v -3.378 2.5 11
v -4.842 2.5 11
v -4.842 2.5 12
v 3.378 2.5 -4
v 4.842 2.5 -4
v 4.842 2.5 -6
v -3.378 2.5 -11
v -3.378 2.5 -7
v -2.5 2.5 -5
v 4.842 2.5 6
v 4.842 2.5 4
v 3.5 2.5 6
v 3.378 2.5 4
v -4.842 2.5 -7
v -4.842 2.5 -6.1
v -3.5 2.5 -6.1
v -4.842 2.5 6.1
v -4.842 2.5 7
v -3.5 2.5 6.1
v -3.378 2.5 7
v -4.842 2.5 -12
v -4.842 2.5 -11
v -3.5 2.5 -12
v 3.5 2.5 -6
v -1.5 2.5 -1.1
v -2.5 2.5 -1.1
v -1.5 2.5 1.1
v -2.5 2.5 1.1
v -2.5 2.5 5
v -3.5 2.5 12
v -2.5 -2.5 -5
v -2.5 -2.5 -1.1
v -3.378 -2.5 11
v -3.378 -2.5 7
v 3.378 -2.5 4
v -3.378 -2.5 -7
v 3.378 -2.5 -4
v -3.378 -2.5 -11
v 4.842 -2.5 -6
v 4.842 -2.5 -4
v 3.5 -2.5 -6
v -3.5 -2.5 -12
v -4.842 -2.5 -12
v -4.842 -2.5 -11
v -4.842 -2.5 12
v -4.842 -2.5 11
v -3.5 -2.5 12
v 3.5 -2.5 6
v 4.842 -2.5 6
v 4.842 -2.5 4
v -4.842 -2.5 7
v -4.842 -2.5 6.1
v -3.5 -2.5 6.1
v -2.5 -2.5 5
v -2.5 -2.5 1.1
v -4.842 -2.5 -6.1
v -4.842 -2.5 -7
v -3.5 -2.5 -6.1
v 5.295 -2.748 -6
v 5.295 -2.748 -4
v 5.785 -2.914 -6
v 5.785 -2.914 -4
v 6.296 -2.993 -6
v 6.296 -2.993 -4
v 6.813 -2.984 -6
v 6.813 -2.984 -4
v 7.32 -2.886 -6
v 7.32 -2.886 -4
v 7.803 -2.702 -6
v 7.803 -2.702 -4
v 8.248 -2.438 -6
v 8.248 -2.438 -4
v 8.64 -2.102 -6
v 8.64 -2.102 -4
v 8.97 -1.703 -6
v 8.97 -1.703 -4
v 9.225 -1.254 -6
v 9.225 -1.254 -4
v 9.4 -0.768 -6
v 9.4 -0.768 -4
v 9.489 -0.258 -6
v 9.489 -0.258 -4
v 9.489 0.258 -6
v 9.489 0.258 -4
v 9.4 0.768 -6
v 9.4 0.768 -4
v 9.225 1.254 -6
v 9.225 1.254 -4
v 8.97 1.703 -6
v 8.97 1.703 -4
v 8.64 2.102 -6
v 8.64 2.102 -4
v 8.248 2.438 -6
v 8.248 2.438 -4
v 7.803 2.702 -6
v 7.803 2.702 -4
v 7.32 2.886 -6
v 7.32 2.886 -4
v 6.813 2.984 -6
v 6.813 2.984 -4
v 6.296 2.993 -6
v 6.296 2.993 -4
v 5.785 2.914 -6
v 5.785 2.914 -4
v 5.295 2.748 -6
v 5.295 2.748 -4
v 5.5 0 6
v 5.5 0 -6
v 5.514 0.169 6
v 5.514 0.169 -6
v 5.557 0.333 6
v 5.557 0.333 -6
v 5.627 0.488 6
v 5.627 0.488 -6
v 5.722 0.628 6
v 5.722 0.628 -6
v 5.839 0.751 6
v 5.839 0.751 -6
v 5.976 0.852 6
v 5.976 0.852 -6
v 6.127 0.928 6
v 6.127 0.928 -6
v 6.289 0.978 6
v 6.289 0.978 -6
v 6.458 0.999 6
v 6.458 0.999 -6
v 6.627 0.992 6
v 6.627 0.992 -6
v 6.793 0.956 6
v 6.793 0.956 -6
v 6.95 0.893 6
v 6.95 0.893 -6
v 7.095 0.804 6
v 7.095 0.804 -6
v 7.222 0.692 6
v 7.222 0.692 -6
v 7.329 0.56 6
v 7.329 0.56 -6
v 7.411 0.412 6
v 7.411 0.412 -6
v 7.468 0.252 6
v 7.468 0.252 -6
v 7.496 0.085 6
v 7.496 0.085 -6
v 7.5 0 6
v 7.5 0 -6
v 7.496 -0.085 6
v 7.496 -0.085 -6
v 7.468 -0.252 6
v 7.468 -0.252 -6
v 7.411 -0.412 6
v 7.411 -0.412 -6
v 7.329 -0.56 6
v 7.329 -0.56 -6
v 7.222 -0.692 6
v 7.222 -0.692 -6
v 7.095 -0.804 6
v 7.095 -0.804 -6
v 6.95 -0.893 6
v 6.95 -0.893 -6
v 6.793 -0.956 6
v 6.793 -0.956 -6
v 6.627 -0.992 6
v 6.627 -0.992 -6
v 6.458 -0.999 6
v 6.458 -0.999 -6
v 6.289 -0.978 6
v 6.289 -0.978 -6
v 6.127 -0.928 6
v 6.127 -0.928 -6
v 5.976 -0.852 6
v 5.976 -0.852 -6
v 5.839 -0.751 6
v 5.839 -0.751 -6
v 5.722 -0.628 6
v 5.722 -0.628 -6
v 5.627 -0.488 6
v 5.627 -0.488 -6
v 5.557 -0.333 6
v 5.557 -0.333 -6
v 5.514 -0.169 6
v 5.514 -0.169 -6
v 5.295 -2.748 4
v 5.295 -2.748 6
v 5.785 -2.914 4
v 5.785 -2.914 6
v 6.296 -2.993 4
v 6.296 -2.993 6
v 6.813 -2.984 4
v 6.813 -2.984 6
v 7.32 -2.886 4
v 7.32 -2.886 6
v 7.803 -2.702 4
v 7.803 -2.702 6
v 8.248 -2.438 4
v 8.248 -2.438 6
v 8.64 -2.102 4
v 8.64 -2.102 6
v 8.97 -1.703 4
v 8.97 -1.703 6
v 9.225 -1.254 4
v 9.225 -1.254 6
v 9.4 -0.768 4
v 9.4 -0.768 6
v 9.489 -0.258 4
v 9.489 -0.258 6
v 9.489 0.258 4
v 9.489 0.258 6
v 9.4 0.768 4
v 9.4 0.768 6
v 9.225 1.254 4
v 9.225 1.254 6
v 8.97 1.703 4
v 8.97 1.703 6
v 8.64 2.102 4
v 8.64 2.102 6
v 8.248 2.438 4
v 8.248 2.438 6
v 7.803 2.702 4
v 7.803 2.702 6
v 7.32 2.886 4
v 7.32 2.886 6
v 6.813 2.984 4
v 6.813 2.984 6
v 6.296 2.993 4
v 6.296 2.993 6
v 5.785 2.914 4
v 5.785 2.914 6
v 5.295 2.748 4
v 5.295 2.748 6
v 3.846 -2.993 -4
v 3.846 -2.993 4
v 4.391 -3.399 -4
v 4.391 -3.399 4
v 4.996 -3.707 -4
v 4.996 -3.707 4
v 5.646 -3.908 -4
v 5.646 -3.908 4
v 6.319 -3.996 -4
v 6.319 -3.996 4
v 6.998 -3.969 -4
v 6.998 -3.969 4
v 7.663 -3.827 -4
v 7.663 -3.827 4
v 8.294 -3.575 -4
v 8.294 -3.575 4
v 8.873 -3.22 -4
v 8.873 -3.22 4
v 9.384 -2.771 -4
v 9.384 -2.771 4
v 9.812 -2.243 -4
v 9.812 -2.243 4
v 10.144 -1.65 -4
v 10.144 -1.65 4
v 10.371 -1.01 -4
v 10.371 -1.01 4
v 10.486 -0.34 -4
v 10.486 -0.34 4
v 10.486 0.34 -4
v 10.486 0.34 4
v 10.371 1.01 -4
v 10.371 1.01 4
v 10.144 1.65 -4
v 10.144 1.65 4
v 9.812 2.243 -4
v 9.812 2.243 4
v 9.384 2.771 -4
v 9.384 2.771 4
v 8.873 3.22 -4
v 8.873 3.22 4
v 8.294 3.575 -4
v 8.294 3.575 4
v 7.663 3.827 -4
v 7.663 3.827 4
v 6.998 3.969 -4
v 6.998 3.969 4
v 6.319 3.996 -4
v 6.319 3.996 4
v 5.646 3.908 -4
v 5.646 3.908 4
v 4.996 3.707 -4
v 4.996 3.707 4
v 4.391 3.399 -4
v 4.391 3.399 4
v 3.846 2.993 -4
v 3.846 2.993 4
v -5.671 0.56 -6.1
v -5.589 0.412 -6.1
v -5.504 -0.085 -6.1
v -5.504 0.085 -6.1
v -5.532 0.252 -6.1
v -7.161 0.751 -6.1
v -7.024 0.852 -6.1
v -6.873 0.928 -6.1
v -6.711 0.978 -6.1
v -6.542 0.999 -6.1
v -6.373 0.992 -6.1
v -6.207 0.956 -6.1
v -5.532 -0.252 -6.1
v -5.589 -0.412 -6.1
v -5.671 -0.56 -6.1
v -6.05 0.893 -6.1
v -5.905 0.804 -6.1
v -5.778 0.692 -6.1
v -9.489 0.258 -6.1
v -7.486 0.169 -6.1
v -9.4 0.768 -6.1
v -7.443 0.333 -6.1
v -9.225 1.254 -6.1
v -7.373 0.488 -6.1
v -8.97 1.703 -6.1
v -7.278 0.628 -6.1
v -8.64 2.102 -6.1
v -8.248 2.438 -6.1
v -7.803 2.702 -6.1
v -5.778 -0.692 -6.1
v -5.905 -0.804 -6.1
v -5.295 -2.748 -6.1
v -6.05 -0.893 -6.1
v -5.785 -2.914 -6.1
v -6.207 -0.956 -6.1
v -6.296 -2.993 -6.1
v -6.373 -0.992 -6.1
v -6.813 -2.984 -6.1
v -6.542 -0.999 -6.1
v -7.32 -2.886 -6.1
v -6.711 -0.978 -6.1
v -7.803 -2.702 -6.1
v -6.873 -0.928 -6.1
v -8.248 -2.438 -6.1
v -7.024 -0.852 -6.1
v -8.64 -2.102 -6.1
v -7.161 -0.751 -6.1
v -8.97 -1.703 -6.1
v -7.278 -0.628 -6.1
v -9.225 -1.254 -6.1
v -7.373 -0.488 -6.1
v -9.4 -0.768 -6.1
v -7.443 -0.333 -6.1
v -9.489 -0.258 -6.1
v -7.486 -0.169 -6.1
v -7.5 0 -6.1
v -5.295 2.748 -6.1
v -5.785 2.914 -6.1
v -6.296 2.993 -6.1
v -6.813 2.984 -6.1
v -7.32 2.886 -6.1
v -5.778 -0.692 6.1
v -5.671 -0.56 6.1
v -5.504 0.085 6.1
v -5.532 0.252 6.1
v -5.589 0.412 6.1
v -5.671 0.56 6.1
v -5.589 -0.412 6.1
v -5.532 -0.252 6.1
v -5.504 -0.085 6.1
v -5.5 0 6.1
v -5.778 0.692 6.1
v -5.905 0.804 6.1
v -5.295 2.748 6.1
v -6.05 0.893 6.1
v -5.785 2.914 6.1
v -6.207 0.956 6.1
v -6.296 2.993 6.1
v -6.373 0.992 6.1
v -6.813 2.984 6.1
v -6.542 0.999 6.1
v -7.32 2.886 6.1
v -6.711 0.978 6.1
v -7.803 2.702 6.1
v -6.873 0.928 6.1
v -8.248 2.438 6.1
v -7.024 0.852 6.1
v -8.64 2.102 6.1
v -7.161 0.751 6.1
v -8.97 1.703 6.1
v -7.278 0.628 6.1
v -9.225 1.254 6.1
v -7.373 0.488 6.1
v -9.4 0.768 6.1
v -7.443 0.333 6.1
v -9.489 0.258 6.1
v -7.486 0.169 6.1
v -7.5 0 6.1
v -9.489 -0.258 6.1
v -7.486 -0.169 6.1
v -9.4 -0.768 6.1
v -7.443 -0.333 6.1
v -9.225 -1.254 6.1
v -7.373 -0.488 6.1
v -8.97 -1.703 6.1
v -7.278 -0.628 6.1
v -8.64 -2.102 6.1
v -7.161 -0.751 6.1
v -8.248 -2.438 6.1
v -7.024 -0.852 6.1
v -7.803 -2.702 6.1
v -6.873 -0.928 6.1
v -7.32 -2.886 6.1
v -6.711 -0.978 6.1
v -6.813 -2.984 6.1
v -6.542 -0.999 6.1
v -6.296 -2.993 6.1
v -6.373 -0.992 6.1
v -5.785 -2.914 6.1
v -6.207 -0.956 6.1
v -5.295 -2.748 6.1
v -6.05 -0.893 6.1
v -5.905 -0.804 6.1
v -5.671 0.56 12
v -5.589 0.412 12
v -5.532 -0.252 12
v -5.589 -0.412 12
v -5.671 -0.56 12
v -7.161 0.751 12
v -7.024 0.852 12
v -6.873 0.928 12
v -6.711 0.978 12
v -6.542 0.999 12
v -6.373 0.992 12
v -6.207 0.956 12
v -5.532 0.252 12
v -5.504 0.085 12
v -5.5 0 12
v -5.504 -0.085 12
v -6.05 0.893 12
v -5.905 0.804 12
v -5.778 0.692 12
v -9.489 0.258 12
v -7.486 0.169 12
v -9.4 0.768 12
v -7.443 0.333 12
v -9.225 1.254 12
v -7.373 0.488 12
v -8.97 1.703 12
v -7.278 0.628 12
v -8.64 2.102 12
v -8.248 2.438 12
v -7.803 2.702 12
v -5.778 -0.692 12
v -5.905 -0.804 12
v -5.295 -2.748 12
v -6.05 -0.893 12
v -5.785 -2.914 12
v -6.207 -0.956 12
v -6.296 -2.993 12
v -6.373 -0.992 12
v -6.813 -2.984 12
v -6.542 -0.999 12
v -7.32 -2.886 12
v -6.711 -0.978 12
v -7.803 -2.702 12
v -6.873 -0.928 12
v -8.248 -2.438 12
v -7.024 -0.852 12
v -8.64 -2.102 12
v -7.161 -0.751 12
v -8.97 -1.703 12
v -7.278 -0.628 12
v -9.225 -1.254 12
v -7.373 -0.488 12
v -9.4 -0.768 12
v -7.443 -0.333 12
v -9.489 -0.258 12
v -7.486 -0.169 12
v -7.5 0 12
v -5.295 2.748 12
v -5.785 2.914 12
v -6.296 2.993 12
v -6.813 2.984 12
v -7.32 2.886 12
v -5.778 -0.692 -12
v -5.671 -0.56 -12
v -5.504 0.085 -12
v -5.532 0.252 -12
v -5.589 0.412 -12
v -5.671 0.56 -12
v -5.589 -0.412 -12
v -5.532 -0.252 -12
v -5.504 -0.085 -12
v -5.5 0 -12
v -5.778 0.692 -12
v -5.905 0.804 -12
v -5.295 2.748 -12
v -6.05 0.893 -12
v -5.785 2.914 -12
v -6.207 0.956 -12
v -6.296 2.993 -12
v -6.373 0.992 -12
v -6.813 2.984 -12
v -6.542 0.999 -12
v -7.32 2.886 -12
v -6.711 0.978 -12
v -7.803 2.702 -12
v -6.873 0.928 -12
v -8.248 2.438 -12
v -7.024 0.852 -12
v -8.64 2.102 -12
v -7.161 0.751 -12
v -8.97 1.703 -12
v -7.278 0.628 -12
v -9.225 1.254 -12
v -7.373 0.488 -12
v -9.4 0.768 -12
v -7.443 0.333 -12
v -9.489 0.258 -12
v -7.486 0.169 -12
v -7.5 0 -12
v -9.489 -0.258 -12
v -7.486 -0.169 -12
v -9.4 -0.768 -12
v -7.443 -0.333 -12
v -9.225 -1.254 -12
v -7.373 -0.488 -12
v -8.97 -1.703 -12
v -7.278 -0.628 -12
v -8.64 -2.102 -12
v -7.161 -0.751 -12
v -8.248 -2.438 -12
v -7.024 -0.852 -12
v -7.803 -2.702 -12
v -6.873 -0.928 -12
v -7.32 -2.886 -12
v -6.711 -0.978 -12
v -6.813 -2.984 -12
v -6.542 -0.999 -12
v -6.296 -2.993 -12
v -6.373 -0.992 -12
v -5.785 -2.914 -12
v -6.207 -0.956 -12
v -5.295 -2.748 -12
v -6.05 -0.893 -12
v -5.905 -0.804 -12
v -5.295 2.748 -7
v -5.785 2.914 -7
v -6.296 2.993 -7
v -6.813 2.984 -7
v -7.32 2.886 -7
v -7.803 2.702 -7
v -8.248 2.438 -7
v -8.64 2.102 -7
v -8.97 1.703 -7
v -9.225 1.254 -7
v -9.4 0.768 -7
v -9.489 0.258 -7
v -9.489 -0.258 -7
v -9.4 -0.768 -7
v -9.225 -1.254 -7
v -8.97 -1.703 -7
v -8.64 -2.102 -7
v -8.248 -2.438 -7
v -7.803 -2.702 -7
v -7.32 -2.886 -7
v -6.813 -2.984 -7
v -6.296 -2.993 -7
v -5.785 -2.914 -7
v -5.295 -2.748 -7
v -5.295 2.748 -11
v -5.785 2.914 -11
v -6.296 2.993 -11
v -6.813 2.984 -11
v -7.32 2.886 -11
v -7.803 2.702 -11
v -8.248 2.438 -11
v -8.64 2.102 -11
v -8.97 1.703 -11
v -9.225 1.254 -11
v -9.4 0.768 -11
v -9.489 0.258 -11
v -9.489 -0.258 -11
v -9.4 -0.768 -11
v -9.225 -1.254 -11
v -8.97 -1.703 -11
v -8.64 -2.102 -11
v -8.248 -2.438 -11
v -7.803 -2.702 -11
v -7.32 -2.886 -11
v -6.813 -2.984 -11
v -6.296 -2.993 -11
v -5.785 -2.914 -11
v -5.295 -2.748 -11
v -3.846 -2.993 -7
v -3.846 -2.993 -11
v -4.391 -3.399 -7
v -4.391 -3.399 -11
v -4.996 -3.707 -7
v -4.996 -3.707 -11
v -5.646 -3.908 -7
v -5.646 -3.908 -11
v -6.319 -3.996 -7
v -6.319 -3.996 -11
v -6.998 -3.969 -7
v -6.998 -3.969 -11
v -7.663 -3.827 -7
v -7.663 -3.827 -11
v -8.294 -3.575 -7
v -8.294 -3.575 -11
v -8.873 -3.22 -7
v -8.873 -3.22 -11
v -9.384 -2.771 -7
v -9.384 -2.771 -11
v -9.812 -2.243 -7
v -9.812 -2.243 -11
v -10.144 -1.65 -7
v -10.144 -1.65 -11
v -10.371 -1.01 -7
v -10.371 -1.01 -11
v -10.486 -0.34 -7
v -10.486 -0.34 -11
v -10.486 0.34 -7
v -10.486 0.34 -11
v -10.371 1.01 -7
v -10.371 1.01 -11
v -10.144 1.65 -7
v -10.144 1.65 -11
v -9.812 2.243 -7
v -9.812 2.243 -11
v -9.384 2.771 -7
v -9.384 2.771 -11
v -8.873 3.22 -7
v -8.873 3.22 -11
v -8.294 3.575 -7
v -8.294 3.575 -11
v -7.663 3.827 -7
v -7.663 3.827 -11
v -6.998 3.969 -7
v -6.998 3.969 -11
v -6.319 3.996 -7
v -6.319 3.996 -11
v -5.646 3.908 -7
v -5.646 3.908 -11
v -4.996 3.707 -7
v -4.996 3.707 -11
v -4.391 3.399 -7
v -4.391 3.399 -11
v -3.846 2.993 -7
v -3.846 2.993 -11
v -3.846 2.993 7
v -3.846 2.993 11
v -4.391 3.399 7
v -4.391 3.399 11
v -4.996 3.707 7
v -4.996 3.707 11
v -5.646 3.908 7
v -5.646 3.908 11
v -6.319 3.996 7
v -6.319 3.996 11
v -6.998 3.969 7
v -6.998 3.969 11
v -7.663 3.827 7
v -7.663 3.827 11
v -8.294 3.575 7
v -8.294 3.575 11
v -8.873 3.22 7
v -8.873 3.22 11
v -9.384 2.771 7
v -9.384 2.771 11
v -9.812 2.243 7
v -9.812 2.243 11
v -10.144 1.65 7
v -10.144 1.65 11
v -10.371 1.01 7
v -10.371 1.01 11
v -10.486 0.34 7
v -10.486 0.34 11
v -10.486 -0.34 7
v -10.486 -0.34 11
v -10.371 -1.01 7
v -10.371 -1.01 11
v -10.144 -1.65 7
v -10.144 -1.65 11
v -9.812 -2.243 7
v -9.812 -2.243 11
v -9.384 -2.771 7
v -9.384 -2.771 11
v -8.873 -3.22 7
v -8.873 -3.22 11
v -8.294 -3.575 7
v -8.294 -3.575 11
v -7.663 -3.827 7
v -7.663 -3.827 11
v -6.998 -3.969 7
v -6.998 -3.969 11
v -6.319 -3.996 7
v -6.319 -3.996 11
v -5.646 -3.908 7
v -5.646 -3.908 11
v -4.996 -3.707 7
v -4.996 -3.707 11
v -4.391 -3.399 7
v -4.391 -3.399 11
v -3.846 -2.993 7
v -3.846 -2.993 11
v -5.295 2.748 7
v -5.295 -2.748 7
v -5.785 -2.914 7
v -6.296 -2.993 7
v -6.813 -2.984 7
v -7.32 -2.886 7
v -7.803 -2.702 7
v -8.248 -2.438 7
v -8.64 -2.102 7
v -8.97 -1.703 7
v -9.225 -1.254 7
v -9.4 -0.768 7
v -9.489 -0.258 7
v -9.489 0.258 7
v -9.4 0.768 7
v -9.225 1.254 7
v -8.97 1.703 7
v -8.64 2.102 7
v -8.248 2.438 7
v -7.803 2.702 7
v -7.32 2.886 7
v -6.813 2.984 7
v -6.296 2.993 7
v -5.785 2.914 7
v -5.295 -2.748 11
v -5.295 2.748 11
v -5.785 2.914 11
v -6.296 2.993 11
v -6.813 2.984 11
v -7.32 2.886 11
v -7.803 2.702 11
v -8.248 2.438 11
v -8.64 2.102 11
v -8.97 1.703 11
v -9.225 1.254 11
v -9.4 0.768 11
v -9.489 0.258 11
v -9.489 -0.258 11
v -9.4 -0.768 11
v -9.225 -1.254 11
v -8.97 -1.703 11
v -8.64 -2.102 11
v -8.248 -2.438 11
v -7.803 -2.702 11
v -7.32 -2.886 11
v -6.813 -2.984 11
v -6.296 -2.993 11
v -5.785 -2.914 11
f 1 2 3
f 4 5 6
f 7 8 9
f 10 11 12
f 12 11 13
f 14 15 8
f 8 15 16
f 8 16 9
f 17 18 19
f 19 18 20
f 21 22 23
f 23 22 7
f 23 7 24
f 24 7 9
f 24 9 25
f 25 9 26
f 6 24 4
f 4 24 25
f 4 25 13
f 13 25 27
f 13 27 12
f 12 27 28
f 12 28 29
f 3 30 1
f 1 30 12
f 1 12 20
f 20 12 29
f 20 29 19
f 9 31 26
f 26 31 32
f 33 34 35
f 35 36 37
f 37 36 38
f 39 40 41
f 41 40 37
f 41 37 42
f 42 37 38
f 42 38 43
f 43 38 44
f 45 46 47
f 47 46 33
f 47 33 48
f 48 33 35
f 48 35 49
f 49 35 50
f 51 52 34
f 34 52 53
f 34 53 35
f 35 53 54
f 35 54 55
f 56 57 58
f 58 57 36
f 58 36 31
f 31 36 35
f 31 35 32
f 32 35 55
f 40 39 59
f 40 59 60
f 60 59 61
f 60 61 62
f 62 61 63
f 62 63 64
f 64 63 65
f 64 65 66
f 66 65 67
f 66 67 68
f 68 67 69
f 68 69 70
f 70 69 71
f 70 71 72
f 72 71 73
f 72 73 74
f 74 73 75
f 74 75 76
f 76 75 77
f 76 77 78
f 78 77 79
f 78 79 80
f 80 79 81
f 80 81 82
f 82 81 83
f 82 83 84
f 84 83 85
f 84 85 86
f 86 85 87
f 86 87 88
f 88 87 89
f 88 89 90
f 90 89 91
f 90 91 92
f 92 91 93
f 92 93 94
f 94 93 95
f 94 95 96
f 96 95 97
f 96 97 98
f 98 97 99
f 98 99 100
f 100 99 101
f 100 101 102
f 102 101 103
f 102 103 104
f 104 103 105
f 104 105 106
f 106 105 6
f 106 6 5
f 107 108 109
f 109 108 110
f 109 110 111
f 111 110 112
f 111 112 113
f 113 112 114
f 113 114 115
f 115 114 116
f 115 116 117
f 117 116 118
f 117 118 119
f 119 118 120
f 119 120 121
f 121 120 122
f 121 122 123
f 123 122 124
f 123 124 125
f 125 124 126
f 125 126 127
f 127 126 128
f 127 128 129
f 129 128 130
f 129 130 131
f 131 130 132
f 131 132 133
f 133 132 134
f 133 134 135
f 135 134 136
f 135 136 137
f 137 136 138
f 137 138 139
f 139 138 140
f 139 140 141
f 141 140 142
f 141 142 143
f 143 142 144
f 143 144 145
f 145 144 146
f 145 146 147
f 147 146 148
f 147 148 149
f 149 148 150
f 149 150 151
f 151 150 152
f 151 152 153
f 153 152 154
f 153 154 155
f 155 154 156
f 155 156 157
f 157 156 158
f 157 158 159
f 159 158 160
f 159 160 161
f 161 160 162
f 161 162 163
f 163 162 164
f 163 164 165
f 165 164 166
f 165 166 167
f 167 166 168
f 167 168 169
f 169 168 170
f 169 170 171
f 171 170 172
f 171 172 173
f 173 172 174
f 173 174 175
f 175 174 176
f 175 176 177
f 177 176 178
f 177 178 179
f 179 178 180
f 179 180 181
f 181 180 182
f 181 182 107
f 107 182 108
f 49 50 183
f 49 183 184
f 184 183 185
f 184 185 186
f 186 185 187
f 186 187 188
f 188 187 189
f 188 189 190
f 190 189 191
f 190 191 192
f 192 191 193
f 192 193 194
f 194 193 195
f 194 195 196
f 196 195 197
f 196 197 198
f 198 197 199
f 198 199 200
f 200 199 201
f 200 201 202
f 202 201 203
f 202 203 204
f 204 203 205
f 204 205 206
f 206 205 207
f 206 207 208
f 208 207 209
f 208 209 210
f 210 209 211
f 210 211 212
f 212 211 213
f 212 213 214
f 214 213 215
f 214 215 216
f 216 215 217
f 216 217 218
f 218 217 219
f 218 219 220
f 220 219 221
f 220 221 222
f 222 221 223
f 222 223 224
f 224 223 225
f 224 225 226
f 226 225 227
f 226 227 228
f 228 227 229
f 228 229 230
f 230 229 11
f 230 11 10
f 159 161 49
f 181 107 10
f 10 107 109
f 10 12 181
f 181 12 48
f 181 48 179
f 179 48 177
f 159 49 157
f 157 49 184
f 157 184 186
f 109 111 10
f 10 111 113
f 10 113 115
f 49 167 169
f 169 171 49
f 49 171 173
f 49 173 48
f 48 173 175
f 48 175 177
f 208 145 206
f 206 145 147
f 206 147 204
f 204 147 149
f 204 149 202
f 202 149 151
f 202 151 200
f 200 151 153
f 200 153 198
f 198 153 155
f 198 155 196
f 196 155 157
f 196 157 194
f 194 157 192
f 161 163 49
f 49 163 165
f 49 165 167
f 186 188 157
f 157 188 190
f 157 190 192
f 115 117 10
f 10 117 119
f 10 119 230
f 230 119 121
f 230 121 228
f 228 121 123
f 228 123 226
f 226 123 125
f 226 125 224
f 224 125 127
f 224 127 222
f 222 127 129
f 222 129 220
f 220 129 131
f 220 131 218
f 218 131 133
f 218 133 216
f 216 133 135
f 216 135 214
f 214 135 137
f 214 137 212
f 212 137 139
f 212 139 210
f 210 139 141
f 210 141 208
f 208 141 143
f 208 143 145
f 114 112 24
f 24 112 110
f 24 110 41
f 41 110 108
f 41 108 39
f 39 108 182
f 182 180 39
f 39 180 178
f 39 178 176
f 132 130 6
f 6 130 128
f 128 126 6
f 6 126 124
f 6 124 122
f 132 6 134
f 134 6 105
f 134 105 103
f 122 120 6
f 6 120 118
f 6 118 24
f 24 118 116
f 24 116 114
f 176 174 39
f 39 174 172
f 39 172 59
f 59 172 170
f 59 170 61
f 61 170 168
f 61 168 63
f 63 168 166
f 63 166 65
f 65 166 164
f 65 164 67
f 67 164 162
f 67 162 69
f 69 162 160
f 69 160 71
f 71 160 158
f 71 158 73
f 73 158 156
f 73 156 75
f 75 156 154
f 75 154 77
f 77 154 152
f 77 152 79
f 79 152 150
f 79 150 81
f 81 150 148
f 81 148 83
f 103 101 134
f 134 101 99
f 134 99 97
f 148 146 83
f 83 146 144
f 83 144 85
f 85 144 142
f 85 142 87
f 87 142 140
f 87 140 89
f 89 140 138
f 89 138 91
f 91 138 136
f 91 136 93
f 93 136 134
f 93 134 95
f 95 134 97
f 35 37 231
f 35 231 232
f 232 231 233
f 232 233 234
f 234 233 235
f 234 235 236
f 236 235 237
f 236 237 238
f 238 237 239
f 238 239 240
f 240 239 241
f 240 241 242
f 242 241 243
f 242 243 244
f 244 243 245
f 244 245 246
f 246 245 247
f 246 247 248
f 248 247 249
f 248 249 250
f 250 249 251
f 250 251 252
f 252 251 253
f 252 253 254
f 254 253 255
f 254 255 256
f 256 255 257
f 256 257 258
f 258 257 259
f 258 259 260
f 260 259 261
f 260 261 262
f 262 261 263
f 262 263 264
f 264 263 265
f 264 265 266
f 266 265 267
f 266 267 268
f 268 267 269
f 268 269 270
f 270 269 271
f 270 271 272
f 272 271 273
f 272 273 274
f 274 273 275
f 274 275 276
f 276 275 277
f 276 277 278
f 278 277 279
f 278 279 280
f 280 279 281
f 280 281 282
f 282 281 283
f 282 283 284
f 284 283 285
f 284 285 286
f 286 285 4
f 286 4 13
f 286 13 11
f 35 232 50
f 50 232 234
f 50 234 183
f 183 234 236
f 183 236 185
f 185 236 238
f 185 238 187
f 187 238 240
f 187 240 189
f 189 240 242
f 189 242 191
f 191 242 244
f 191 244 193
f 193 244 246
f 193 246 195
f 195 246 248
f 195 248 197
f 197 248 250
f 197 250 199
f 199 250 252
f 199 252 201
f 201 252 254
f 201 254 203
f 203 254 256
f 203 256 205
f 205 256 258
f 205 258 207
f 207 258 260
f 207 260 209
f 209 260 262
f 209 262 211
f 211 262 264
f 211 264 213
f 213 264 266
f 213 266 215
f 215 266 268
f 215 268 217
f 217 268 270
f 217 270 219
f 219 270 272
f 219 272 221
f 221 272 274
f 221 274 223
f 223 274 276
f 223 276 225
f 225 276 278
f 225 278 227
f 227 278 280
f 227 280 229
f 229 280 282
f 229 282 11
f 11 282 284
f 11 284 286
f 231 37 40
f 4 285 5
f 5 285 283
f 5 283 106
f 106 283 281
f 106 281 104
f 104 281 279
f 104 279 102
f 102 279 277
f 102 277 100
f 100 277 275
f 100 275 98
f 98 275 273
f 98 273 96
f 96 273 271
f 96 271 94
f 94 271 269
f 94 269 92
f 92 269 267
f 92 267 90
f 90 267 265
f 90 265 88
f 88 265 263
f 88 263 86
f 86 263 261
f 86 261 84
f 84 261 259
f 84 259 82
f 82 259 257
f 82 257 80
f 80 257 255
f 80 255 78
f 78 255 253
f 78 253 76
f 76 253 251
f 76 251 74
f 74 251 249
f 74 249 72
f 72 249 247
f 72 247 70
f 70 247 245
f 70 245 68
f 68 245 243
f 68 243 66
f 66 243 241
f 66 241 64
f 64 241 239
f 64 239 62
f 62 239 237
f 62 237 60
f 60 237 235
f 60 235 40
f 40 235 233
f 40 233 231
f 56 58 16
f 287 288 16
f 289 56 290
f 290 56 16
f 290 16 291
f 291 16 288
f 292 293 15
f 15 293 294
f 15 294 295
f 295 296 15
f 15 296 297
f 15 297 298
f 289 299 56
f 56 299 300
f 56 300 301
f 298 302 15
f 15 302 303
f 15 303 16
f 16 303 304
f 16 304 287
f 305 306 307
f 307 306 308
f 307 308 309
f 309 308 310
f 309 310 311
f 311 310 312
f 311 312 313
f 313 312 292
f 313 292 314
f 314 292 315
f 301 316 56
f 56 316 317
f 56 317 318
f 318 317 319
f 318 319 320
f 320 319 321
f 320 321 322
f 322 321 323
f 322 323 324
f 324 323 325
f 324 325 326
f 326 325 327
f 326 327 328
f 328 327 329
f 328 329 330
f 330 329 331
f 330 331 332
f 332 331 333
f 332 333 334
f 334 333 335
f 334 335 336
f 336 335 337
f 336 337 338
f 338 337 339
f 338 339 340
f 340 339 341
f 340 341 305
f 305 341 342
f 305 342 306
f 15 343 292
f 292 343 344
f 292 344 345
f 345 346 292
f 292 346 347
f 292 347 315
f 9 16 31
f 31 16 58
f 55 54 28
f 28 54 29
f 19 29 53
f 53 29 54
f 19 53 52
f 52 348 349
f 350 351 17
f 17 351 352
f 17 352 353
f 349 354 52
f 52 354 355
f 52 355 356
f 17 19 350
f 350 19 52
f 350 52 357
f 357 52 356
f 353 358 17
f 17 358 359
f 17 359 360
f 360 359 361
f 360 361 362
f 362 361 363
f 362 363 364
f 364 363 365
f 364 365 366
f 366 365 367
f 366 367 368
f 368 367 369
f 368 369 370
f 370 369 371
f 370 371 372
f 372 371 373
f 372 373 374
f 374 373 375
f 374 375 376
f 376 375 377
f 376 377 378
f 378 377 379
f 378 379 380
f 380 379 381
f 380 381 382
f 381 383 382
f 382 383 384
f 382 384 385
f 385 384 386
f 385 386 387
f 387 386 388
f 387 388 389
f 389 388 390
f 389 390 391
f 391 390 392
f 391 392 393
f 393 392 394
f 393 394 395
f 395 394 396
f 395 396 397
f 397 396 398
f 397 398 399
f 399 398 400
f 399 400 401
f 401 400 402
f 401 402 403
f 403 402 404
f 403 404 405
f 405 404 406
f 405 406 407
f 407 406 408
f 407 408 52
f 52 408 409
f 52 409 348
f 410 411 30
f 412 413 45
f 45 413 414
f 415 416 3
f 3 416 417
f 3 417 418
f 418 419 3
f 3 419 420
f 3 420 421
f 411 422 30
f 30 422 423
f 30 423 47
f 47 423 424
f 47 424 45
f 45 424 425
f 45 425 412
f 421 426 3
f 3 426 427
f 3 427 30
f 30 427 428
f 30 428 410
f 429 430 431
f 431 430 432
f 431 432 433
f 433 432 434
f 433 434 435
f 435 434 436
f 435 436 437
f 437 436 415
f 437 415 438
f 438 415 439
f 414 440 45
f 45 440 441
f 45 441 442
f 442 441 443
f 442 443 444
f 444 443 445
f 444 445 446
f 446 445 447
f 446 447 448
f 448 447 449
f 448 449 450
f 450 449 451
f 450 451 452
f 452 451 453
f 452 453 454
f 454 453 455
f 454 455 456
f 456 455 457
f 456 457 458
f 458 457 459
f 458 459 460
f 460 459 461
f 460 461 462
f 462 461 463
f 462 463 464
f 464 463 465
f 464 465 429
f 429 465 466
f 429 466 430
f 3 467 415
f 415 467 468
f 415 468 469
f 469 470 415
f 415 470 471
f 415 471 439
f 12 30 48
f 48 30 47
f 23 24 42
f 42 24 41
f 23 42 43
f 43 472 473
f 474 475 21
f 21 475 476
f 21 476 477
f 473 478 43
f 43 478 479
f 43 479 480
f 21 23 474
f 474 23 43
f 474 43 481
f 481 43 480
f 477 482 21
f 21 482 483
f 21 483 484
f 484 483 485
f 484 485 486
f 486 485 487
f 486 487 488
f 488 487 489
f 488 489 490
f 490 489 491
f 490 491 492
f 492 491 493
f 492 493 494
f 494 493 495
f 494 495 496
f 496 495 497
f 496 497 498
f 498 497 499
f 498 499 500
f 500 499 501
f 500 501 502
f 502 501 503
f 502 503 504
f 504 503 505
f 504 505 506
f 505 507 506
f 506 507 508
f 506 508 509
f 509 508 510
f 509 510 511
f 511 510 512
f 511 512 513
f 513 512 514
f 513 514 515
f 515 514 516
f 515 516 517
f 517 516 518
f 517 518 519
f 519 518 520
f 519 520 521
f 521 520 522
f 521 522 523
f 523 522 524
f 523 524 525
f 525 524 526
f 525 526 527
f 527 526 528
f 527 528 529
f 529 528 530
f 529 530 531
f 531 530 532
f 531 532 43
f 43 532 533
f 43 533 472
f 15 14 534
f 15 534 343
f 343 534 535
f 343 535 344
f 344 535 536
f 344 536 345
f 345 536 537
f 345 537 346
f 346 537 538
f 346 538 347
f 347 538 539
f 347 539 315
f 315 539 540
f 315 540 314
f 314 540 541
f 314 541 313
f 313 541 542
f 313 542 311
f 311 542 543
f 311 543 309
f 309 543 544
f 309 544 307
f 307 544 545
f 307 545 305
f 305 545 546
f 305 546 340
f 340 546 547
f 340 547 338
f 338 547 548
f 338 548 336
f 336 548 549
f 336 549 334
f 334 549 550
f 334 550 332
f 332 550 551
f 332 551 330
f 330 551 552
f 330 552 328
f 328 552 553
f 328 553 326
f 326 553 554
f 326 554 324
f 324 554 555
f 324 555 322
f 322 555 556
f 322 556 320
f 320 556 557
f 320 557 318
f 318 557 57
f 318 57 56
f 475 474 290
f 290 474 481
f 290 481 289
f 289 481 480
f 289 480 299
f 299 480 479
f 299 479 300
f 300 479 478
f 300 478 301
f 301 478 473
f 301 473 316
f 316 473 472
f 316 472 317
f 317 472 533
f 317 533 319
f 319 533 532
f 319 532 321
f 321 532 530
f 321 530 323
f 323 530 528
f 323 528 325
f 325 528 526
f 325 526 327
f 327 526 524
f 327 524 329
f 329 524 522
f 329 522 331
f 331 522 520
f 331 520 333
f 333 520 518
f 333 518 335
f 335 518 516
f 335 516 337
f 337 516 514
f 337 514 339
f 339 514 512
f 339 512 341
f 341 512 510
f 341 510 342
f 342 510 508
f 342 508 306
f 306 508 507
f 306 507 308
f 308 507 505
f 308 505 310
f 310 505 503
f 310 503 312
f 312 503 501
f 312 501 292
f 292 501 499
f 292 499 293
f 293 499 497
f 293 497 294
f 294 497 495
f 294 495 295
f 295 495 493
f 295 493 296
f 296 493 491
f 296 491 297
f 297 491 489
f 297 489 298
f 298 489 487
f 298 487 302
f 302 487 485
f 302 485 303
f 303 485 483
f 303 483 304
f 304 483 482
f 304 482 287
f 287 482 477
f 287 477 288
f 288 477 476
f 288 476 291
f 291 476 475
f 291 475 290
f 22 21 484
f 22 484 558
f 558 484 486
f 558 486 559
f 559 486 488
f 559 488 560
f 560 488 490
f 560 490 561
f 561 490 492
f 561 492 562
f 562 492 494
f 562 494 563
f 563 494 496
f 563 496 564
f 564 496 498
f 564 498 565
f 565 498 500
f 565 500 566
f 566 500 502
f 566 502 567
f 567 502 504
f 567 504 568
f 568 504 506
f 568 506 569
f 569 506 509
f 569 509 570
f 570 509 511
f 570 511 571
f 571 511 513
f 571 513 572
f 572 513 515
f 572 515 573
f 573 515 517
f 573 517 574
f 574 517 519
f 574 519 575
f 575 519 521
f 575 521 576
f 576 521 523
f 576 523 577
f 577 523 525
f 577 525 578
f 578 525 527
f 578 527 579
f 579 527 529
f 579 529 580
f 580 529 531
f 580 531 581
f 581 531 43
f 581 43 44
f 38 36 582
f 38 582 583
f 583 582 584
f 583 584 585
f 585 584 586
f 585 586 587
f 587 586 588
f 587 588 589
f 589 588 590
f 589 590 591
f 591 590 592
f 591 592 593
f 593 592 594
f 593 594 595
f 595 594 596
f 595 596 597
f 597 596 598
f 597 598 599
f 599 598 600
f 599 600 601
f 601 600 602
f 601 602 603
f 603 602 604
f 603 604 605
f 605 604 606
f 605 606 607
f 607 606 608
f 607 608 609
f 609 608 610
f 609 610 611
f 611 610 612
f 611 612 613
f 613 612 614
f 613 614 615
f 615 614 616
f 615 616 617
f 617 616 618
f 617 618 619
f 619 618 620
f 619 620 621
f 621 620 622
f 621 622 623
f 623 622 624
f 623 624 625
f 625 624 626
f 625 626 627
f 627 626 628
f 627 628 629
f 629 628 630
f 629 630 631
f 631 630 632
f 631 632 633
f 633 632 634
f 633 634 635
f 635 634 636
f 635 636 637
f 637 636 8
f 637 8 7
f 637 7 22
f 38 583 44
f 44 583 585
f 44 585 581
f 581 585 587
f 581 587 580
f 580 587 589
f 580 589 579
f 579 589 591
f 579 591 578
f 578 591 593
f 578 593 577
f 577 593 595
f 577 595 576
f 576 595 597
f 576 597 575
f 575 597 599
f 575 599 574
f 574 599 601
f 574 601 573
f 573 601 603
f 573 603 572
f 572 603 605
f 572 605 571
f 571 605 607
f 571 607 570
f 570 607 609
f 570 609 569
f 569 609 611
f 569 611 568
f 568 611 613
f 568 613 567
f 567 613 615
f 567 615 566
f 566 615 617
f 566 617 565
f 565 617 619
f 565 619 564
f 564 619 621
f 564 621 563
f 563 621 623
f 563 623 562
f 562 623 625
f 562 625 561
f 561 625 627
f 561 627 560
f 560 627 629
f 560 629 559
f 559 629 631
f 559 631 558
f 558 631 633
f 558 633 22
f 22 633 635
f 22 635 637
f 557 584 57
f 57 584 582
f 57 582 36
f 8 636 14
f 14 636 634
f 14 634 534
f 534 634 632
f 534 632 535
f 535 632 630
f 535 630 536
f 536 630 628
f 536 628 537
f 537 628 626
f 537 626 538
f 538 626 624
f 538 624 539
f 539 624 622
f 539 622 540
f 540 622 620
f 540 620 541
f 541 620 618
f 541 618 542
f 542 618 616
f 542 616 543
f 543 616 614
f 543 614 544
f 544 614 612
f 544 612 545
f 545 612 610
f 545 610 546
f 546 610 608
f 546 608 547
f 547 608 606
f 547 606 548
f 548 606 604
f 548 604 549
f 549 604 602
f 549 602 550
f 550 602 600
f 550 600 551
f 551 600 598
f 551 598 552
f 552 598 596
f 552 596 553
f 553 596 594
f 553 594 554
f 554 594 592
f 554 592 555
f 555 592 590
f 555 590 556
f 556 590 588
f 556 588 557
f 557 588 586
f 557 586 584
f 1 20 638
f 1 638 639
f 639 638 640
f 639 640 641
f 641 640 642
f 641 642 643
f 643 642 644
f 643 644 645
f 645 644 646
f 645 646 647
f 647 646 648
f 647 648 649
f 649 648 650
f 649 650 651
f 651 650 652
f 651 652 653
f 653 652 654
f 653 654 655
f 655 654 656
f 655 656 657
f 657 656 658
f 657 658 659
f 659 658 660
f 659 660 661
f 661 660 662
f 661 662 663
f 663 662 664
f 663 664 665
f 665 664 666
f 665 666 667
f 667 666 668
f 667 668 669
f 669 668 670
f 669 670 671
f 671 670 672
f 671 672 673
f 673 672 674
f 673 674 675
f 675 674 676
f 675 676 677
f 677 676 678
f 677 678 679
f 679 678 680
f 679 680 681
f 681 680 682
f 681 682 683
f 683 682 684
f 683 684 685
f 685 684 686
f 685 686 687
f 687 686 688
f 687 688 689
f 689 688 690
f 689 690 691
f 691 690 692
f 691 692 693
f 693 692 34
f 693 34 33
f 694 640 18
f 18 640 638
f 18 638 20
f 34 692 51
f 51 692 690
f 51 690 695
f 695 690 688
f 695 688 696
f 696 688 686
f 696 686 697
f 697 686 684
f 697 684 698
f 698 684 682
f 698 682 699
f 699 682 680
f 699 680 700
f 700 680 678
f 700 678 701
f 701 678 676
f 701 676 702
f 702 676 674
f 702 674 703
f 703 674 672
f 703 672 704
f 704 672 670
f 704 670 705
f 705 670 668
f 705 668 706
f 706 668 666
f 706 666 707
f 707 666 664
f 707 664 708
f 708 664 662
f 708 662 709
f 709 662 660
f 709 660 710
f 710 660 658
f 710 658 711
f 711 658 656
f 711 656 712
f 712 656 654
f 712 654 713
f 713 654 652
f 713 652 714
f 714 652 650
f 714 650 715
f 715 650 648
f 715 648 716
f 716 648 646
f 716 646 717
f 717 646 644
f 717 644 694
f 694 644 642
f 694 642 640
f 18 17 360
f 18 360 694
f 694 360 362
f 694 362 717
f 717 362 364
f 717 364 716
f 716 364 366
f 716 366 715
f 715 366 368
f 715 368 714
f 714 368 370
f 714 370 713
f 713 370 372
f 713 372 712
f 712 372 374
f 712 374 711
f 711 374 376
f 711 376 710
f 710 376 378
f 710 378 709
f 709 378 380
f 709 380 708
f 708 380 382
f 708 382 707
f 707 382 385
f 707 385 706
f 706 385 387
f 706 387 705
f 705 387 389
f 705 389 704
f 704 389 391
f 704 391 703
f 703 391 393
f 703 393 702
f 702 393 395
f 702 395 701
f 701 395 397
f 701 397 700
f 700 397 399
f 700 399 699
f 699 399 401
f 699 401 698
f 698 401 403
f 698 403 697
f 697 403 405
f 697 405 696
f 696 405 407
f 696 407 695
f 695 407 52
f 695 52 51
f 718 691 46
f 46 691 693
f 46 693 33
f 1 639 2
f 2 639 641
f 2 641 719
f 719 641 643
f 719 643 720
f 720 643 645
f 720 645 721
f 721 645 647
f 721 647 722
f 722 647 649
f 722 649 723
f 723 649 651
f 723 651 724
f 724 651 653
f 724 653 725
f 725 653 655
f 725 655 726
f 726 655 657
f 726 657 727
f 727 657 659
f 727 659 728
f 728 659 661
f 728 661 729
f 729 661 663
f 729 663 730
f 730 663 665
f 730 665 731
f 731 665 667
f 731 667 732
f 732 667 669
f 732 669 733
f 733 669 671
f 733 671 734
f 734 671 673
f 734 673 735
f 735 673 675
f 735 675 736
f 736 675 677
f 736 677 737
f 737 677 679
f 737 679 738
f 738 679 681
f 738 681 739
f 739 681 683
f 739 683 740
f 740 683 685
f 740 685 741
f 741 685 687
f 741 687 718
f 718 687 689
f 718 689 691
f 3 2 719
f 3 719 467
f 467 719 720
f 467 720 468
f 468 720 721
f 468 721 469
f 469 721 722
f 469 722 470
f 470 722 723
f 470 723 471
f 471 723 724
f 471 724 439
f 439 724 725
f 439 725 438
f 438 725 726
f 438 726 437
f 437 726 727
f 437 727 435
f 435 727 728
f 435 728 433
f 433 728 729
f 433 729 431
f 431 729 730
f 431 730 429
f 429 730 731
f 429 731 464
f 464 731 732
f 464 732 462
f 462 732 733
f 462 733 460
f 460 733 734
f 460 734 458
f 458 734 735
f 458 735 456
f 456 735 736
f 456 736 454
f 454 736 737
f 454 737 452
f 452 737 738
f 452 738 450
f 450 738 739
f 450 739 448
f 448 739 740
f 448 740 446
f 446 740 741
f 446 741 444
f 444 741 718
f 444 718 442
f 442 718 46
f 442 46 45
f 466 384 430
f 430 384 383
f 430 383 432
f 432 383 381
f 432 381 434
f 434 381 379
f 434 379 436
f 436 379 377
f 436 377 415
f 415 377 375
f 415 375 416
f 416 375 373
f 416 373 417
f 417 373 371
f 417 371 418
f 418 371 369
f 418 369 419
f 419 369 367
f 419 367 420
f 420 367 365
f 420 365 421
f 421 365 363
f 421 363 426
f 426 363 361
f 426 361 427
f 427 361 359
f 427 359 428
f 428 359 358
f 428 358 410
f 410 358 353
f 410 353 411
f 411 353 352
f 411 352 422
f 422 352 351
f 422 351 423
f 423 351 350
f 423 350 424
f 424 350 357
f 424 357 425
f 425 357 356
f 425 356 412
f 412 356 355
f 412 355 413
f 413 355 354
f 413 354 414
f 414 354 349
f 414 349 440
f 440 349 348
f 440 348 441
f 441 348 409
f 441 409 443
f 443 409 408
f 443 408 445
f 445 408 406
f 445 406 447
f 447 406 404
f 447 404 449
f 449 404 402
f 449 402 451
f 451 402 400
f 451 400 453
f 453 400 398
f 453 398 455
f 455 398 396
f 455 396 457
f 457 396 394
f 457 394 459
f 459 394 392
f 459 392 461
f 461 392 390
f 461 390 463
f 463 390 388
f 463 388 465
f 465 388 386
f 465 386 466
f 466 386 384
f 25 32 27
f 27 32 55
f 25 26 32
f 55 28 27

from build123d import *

# Parameters (mm, degrees)
SKETCH_1_R               = 3
SKETCH_1_R_2             = 1
EXTRUDE_1_DEPTH          = 6
SKETCH_1_4_R             = 4
SKETCH_1_4_R_2           = 3
EXTRUDE_2_DEPTH          = 4
SKETCH_1_5_R             = 3
SKETCH_1_5_R_2           = 1
EXTRUDE_3_DEPTH          = 12
SKETCH_2_R               = 4
SKETCH_2_R_2             = 3
EXTRUDE_4_DEPTH          = 2
CUT_EXTRUDE_1_DEPTH      = 17.439282223
CUT_EXTRUDE_1_DEPTH_BACK = 17.439282223
SKETCH_3_W               = 6
SKETCH_3_H               = 12.2
EXTRUDE_7_DEPTH          = 2.5
CUT_EXTRUDE_2_DEPTH      = 1.1


with BuildPart() as part:
    # Эскиз1 → Бобышка-Вытянуть1 (new, symmetric)
    with BuildSketch(Plane.XY):
        with Locations((6.5, 0)):
            Circle(SKETCH_1_R)
        with Locations((6.5, 0)):
            Circle(SKETCH_1_R_2, mode=Mode.SUBTRACT)
    extrude(amount=EXTRUDE_1_DEPTH, both=True)

    # Эскиз1<4> → Бобышка-Вытянуть2 (add, symmetric)
    with BuildSketch(Plane.XY):
        with Locations((6.5, 0)):
            Circle(SKETCH_1_4_R)
        with Locations((6.5, 0)):
            Circle(SKETCH_1_4_R_2, mode=Mode.SUBTRACT)
    extrude(amount=EXTRUDE_2_DEPTH, both=True)



with BuildPart() as body_2:
    # Эскиз1<5> → Бобышка-Вытянуть3 (new, symmetric)
    with BuildSketch(Plane.XY):
        with Locations((-6.5, 0)):
            Circle(SKETCH_1_5_R)
        with Locations((-6.5, 0)):
            Circle(SKETCH_1_5_R_2, mode=Mode.SUBTRACT)
    extrude(amount=EXTRUDE_3_DEPTH, both=True)

    # Эскиз2 → Бобышка-Вытянуть4 (add, symmetric)
    with BuildSketch(Plane.XY.offset(9)):
        with Locations((-6.5, 0)):
            Circle(SKETCH_2_R)
        with Locations((-6.5, 0)):
            Circle(SKETCH_2_R_2, mode=Mode.SUBTRACT)
    extrude_4 = extrude(amount=EXTRUDE_4_DEPTH, both=True)

    # Зеркальное отражение1: Бобышка-Вытянуть4 across plane
    add(extrude_4.mirror(Plane.XY))

    # Эскиз3 → Вырез-Вытянуть1 (cut, two sides: drawn at the far end of the back side and taken through both)
    with BuildSketch(Plane(origin=(0, 0, 0), x_dir=(1, 0, 0), z_dir=(0, 1, 0)).offset(-CUT_EXTRUDE_1_DEPTH_BACK)):
        with Locations((-6.5, 0)):
            Rectangle(SKETCH_3_W, SKETCH_3_H)
    extrude(amount=CUT_EXTRUDE_1_DEPTH + CUT_EXTRUDE_1_DEPTH_BACK, mode=Mode.SUBTRACT)


with BuildPart() as cut_extrude_1_piece_1:
    # of the separate pieces the step leaves, piece 1, a body of its own (cut_extrude_1_pieces)
    add(body_2.part.solids().sort_by_distance((-3.5, 0, -12))[0])


with BuildPart() as cut_extrude_1_piece_2:
    # of the separate pieces the step leaves, piece 2, a body of its own (cut_extrude_1_pieces)
    add(body_2.part.solids().sort_by_distance((-5.5, 0, 12))[0])


with BuildPart() as part_1:
    add(part.part)

    add(cut_extrude_1_piece_1.part)  # Бобышка-Вытянуть7 merges Вырез-Вытянуть1 piece 1

    add(cut_extrude_1_piece_2.part)  # Бобышка-Вытянуть7 merges Вырез-Вытянуть1 piece 2
    # Эскиз4 → Бобышка-Вытянуть7 (add, symmetric)
    with BuildSketch(Plane(origin=(0, 0, 0), x_dir=(1, 0, 0), z_dir=(0, 1, 0))):
        Polygon((5.5, -6), (5.5, 6), (3.5, 6), (-3.5, 12), (-5.5, 12), (-5.5, 6.1), (-3.5, 6.1), (-2.5, 5), (-2.5, -5), (-3.5, -6.1), (-5.5, -6.1), (-5.5, -12), (-3.5, -12), (3.5, -6), align=None)
    extrude(amount=EXTRUDE_7_DEPTH, both=True)

    # Эскиз5 → Вырез-Вытянуть2 (cut, symmetric)
    with BuildSketch(Plane.XY):
        Polygon((-2.5, 2.5), (-2.5, -2.5), (-1.5, 2.5), align=None)
    extrude(amount=CUT_EXTRUDE_2_DEPTH, both=True, mode=Mode.SUBTRACT)


solid = part_1.part
